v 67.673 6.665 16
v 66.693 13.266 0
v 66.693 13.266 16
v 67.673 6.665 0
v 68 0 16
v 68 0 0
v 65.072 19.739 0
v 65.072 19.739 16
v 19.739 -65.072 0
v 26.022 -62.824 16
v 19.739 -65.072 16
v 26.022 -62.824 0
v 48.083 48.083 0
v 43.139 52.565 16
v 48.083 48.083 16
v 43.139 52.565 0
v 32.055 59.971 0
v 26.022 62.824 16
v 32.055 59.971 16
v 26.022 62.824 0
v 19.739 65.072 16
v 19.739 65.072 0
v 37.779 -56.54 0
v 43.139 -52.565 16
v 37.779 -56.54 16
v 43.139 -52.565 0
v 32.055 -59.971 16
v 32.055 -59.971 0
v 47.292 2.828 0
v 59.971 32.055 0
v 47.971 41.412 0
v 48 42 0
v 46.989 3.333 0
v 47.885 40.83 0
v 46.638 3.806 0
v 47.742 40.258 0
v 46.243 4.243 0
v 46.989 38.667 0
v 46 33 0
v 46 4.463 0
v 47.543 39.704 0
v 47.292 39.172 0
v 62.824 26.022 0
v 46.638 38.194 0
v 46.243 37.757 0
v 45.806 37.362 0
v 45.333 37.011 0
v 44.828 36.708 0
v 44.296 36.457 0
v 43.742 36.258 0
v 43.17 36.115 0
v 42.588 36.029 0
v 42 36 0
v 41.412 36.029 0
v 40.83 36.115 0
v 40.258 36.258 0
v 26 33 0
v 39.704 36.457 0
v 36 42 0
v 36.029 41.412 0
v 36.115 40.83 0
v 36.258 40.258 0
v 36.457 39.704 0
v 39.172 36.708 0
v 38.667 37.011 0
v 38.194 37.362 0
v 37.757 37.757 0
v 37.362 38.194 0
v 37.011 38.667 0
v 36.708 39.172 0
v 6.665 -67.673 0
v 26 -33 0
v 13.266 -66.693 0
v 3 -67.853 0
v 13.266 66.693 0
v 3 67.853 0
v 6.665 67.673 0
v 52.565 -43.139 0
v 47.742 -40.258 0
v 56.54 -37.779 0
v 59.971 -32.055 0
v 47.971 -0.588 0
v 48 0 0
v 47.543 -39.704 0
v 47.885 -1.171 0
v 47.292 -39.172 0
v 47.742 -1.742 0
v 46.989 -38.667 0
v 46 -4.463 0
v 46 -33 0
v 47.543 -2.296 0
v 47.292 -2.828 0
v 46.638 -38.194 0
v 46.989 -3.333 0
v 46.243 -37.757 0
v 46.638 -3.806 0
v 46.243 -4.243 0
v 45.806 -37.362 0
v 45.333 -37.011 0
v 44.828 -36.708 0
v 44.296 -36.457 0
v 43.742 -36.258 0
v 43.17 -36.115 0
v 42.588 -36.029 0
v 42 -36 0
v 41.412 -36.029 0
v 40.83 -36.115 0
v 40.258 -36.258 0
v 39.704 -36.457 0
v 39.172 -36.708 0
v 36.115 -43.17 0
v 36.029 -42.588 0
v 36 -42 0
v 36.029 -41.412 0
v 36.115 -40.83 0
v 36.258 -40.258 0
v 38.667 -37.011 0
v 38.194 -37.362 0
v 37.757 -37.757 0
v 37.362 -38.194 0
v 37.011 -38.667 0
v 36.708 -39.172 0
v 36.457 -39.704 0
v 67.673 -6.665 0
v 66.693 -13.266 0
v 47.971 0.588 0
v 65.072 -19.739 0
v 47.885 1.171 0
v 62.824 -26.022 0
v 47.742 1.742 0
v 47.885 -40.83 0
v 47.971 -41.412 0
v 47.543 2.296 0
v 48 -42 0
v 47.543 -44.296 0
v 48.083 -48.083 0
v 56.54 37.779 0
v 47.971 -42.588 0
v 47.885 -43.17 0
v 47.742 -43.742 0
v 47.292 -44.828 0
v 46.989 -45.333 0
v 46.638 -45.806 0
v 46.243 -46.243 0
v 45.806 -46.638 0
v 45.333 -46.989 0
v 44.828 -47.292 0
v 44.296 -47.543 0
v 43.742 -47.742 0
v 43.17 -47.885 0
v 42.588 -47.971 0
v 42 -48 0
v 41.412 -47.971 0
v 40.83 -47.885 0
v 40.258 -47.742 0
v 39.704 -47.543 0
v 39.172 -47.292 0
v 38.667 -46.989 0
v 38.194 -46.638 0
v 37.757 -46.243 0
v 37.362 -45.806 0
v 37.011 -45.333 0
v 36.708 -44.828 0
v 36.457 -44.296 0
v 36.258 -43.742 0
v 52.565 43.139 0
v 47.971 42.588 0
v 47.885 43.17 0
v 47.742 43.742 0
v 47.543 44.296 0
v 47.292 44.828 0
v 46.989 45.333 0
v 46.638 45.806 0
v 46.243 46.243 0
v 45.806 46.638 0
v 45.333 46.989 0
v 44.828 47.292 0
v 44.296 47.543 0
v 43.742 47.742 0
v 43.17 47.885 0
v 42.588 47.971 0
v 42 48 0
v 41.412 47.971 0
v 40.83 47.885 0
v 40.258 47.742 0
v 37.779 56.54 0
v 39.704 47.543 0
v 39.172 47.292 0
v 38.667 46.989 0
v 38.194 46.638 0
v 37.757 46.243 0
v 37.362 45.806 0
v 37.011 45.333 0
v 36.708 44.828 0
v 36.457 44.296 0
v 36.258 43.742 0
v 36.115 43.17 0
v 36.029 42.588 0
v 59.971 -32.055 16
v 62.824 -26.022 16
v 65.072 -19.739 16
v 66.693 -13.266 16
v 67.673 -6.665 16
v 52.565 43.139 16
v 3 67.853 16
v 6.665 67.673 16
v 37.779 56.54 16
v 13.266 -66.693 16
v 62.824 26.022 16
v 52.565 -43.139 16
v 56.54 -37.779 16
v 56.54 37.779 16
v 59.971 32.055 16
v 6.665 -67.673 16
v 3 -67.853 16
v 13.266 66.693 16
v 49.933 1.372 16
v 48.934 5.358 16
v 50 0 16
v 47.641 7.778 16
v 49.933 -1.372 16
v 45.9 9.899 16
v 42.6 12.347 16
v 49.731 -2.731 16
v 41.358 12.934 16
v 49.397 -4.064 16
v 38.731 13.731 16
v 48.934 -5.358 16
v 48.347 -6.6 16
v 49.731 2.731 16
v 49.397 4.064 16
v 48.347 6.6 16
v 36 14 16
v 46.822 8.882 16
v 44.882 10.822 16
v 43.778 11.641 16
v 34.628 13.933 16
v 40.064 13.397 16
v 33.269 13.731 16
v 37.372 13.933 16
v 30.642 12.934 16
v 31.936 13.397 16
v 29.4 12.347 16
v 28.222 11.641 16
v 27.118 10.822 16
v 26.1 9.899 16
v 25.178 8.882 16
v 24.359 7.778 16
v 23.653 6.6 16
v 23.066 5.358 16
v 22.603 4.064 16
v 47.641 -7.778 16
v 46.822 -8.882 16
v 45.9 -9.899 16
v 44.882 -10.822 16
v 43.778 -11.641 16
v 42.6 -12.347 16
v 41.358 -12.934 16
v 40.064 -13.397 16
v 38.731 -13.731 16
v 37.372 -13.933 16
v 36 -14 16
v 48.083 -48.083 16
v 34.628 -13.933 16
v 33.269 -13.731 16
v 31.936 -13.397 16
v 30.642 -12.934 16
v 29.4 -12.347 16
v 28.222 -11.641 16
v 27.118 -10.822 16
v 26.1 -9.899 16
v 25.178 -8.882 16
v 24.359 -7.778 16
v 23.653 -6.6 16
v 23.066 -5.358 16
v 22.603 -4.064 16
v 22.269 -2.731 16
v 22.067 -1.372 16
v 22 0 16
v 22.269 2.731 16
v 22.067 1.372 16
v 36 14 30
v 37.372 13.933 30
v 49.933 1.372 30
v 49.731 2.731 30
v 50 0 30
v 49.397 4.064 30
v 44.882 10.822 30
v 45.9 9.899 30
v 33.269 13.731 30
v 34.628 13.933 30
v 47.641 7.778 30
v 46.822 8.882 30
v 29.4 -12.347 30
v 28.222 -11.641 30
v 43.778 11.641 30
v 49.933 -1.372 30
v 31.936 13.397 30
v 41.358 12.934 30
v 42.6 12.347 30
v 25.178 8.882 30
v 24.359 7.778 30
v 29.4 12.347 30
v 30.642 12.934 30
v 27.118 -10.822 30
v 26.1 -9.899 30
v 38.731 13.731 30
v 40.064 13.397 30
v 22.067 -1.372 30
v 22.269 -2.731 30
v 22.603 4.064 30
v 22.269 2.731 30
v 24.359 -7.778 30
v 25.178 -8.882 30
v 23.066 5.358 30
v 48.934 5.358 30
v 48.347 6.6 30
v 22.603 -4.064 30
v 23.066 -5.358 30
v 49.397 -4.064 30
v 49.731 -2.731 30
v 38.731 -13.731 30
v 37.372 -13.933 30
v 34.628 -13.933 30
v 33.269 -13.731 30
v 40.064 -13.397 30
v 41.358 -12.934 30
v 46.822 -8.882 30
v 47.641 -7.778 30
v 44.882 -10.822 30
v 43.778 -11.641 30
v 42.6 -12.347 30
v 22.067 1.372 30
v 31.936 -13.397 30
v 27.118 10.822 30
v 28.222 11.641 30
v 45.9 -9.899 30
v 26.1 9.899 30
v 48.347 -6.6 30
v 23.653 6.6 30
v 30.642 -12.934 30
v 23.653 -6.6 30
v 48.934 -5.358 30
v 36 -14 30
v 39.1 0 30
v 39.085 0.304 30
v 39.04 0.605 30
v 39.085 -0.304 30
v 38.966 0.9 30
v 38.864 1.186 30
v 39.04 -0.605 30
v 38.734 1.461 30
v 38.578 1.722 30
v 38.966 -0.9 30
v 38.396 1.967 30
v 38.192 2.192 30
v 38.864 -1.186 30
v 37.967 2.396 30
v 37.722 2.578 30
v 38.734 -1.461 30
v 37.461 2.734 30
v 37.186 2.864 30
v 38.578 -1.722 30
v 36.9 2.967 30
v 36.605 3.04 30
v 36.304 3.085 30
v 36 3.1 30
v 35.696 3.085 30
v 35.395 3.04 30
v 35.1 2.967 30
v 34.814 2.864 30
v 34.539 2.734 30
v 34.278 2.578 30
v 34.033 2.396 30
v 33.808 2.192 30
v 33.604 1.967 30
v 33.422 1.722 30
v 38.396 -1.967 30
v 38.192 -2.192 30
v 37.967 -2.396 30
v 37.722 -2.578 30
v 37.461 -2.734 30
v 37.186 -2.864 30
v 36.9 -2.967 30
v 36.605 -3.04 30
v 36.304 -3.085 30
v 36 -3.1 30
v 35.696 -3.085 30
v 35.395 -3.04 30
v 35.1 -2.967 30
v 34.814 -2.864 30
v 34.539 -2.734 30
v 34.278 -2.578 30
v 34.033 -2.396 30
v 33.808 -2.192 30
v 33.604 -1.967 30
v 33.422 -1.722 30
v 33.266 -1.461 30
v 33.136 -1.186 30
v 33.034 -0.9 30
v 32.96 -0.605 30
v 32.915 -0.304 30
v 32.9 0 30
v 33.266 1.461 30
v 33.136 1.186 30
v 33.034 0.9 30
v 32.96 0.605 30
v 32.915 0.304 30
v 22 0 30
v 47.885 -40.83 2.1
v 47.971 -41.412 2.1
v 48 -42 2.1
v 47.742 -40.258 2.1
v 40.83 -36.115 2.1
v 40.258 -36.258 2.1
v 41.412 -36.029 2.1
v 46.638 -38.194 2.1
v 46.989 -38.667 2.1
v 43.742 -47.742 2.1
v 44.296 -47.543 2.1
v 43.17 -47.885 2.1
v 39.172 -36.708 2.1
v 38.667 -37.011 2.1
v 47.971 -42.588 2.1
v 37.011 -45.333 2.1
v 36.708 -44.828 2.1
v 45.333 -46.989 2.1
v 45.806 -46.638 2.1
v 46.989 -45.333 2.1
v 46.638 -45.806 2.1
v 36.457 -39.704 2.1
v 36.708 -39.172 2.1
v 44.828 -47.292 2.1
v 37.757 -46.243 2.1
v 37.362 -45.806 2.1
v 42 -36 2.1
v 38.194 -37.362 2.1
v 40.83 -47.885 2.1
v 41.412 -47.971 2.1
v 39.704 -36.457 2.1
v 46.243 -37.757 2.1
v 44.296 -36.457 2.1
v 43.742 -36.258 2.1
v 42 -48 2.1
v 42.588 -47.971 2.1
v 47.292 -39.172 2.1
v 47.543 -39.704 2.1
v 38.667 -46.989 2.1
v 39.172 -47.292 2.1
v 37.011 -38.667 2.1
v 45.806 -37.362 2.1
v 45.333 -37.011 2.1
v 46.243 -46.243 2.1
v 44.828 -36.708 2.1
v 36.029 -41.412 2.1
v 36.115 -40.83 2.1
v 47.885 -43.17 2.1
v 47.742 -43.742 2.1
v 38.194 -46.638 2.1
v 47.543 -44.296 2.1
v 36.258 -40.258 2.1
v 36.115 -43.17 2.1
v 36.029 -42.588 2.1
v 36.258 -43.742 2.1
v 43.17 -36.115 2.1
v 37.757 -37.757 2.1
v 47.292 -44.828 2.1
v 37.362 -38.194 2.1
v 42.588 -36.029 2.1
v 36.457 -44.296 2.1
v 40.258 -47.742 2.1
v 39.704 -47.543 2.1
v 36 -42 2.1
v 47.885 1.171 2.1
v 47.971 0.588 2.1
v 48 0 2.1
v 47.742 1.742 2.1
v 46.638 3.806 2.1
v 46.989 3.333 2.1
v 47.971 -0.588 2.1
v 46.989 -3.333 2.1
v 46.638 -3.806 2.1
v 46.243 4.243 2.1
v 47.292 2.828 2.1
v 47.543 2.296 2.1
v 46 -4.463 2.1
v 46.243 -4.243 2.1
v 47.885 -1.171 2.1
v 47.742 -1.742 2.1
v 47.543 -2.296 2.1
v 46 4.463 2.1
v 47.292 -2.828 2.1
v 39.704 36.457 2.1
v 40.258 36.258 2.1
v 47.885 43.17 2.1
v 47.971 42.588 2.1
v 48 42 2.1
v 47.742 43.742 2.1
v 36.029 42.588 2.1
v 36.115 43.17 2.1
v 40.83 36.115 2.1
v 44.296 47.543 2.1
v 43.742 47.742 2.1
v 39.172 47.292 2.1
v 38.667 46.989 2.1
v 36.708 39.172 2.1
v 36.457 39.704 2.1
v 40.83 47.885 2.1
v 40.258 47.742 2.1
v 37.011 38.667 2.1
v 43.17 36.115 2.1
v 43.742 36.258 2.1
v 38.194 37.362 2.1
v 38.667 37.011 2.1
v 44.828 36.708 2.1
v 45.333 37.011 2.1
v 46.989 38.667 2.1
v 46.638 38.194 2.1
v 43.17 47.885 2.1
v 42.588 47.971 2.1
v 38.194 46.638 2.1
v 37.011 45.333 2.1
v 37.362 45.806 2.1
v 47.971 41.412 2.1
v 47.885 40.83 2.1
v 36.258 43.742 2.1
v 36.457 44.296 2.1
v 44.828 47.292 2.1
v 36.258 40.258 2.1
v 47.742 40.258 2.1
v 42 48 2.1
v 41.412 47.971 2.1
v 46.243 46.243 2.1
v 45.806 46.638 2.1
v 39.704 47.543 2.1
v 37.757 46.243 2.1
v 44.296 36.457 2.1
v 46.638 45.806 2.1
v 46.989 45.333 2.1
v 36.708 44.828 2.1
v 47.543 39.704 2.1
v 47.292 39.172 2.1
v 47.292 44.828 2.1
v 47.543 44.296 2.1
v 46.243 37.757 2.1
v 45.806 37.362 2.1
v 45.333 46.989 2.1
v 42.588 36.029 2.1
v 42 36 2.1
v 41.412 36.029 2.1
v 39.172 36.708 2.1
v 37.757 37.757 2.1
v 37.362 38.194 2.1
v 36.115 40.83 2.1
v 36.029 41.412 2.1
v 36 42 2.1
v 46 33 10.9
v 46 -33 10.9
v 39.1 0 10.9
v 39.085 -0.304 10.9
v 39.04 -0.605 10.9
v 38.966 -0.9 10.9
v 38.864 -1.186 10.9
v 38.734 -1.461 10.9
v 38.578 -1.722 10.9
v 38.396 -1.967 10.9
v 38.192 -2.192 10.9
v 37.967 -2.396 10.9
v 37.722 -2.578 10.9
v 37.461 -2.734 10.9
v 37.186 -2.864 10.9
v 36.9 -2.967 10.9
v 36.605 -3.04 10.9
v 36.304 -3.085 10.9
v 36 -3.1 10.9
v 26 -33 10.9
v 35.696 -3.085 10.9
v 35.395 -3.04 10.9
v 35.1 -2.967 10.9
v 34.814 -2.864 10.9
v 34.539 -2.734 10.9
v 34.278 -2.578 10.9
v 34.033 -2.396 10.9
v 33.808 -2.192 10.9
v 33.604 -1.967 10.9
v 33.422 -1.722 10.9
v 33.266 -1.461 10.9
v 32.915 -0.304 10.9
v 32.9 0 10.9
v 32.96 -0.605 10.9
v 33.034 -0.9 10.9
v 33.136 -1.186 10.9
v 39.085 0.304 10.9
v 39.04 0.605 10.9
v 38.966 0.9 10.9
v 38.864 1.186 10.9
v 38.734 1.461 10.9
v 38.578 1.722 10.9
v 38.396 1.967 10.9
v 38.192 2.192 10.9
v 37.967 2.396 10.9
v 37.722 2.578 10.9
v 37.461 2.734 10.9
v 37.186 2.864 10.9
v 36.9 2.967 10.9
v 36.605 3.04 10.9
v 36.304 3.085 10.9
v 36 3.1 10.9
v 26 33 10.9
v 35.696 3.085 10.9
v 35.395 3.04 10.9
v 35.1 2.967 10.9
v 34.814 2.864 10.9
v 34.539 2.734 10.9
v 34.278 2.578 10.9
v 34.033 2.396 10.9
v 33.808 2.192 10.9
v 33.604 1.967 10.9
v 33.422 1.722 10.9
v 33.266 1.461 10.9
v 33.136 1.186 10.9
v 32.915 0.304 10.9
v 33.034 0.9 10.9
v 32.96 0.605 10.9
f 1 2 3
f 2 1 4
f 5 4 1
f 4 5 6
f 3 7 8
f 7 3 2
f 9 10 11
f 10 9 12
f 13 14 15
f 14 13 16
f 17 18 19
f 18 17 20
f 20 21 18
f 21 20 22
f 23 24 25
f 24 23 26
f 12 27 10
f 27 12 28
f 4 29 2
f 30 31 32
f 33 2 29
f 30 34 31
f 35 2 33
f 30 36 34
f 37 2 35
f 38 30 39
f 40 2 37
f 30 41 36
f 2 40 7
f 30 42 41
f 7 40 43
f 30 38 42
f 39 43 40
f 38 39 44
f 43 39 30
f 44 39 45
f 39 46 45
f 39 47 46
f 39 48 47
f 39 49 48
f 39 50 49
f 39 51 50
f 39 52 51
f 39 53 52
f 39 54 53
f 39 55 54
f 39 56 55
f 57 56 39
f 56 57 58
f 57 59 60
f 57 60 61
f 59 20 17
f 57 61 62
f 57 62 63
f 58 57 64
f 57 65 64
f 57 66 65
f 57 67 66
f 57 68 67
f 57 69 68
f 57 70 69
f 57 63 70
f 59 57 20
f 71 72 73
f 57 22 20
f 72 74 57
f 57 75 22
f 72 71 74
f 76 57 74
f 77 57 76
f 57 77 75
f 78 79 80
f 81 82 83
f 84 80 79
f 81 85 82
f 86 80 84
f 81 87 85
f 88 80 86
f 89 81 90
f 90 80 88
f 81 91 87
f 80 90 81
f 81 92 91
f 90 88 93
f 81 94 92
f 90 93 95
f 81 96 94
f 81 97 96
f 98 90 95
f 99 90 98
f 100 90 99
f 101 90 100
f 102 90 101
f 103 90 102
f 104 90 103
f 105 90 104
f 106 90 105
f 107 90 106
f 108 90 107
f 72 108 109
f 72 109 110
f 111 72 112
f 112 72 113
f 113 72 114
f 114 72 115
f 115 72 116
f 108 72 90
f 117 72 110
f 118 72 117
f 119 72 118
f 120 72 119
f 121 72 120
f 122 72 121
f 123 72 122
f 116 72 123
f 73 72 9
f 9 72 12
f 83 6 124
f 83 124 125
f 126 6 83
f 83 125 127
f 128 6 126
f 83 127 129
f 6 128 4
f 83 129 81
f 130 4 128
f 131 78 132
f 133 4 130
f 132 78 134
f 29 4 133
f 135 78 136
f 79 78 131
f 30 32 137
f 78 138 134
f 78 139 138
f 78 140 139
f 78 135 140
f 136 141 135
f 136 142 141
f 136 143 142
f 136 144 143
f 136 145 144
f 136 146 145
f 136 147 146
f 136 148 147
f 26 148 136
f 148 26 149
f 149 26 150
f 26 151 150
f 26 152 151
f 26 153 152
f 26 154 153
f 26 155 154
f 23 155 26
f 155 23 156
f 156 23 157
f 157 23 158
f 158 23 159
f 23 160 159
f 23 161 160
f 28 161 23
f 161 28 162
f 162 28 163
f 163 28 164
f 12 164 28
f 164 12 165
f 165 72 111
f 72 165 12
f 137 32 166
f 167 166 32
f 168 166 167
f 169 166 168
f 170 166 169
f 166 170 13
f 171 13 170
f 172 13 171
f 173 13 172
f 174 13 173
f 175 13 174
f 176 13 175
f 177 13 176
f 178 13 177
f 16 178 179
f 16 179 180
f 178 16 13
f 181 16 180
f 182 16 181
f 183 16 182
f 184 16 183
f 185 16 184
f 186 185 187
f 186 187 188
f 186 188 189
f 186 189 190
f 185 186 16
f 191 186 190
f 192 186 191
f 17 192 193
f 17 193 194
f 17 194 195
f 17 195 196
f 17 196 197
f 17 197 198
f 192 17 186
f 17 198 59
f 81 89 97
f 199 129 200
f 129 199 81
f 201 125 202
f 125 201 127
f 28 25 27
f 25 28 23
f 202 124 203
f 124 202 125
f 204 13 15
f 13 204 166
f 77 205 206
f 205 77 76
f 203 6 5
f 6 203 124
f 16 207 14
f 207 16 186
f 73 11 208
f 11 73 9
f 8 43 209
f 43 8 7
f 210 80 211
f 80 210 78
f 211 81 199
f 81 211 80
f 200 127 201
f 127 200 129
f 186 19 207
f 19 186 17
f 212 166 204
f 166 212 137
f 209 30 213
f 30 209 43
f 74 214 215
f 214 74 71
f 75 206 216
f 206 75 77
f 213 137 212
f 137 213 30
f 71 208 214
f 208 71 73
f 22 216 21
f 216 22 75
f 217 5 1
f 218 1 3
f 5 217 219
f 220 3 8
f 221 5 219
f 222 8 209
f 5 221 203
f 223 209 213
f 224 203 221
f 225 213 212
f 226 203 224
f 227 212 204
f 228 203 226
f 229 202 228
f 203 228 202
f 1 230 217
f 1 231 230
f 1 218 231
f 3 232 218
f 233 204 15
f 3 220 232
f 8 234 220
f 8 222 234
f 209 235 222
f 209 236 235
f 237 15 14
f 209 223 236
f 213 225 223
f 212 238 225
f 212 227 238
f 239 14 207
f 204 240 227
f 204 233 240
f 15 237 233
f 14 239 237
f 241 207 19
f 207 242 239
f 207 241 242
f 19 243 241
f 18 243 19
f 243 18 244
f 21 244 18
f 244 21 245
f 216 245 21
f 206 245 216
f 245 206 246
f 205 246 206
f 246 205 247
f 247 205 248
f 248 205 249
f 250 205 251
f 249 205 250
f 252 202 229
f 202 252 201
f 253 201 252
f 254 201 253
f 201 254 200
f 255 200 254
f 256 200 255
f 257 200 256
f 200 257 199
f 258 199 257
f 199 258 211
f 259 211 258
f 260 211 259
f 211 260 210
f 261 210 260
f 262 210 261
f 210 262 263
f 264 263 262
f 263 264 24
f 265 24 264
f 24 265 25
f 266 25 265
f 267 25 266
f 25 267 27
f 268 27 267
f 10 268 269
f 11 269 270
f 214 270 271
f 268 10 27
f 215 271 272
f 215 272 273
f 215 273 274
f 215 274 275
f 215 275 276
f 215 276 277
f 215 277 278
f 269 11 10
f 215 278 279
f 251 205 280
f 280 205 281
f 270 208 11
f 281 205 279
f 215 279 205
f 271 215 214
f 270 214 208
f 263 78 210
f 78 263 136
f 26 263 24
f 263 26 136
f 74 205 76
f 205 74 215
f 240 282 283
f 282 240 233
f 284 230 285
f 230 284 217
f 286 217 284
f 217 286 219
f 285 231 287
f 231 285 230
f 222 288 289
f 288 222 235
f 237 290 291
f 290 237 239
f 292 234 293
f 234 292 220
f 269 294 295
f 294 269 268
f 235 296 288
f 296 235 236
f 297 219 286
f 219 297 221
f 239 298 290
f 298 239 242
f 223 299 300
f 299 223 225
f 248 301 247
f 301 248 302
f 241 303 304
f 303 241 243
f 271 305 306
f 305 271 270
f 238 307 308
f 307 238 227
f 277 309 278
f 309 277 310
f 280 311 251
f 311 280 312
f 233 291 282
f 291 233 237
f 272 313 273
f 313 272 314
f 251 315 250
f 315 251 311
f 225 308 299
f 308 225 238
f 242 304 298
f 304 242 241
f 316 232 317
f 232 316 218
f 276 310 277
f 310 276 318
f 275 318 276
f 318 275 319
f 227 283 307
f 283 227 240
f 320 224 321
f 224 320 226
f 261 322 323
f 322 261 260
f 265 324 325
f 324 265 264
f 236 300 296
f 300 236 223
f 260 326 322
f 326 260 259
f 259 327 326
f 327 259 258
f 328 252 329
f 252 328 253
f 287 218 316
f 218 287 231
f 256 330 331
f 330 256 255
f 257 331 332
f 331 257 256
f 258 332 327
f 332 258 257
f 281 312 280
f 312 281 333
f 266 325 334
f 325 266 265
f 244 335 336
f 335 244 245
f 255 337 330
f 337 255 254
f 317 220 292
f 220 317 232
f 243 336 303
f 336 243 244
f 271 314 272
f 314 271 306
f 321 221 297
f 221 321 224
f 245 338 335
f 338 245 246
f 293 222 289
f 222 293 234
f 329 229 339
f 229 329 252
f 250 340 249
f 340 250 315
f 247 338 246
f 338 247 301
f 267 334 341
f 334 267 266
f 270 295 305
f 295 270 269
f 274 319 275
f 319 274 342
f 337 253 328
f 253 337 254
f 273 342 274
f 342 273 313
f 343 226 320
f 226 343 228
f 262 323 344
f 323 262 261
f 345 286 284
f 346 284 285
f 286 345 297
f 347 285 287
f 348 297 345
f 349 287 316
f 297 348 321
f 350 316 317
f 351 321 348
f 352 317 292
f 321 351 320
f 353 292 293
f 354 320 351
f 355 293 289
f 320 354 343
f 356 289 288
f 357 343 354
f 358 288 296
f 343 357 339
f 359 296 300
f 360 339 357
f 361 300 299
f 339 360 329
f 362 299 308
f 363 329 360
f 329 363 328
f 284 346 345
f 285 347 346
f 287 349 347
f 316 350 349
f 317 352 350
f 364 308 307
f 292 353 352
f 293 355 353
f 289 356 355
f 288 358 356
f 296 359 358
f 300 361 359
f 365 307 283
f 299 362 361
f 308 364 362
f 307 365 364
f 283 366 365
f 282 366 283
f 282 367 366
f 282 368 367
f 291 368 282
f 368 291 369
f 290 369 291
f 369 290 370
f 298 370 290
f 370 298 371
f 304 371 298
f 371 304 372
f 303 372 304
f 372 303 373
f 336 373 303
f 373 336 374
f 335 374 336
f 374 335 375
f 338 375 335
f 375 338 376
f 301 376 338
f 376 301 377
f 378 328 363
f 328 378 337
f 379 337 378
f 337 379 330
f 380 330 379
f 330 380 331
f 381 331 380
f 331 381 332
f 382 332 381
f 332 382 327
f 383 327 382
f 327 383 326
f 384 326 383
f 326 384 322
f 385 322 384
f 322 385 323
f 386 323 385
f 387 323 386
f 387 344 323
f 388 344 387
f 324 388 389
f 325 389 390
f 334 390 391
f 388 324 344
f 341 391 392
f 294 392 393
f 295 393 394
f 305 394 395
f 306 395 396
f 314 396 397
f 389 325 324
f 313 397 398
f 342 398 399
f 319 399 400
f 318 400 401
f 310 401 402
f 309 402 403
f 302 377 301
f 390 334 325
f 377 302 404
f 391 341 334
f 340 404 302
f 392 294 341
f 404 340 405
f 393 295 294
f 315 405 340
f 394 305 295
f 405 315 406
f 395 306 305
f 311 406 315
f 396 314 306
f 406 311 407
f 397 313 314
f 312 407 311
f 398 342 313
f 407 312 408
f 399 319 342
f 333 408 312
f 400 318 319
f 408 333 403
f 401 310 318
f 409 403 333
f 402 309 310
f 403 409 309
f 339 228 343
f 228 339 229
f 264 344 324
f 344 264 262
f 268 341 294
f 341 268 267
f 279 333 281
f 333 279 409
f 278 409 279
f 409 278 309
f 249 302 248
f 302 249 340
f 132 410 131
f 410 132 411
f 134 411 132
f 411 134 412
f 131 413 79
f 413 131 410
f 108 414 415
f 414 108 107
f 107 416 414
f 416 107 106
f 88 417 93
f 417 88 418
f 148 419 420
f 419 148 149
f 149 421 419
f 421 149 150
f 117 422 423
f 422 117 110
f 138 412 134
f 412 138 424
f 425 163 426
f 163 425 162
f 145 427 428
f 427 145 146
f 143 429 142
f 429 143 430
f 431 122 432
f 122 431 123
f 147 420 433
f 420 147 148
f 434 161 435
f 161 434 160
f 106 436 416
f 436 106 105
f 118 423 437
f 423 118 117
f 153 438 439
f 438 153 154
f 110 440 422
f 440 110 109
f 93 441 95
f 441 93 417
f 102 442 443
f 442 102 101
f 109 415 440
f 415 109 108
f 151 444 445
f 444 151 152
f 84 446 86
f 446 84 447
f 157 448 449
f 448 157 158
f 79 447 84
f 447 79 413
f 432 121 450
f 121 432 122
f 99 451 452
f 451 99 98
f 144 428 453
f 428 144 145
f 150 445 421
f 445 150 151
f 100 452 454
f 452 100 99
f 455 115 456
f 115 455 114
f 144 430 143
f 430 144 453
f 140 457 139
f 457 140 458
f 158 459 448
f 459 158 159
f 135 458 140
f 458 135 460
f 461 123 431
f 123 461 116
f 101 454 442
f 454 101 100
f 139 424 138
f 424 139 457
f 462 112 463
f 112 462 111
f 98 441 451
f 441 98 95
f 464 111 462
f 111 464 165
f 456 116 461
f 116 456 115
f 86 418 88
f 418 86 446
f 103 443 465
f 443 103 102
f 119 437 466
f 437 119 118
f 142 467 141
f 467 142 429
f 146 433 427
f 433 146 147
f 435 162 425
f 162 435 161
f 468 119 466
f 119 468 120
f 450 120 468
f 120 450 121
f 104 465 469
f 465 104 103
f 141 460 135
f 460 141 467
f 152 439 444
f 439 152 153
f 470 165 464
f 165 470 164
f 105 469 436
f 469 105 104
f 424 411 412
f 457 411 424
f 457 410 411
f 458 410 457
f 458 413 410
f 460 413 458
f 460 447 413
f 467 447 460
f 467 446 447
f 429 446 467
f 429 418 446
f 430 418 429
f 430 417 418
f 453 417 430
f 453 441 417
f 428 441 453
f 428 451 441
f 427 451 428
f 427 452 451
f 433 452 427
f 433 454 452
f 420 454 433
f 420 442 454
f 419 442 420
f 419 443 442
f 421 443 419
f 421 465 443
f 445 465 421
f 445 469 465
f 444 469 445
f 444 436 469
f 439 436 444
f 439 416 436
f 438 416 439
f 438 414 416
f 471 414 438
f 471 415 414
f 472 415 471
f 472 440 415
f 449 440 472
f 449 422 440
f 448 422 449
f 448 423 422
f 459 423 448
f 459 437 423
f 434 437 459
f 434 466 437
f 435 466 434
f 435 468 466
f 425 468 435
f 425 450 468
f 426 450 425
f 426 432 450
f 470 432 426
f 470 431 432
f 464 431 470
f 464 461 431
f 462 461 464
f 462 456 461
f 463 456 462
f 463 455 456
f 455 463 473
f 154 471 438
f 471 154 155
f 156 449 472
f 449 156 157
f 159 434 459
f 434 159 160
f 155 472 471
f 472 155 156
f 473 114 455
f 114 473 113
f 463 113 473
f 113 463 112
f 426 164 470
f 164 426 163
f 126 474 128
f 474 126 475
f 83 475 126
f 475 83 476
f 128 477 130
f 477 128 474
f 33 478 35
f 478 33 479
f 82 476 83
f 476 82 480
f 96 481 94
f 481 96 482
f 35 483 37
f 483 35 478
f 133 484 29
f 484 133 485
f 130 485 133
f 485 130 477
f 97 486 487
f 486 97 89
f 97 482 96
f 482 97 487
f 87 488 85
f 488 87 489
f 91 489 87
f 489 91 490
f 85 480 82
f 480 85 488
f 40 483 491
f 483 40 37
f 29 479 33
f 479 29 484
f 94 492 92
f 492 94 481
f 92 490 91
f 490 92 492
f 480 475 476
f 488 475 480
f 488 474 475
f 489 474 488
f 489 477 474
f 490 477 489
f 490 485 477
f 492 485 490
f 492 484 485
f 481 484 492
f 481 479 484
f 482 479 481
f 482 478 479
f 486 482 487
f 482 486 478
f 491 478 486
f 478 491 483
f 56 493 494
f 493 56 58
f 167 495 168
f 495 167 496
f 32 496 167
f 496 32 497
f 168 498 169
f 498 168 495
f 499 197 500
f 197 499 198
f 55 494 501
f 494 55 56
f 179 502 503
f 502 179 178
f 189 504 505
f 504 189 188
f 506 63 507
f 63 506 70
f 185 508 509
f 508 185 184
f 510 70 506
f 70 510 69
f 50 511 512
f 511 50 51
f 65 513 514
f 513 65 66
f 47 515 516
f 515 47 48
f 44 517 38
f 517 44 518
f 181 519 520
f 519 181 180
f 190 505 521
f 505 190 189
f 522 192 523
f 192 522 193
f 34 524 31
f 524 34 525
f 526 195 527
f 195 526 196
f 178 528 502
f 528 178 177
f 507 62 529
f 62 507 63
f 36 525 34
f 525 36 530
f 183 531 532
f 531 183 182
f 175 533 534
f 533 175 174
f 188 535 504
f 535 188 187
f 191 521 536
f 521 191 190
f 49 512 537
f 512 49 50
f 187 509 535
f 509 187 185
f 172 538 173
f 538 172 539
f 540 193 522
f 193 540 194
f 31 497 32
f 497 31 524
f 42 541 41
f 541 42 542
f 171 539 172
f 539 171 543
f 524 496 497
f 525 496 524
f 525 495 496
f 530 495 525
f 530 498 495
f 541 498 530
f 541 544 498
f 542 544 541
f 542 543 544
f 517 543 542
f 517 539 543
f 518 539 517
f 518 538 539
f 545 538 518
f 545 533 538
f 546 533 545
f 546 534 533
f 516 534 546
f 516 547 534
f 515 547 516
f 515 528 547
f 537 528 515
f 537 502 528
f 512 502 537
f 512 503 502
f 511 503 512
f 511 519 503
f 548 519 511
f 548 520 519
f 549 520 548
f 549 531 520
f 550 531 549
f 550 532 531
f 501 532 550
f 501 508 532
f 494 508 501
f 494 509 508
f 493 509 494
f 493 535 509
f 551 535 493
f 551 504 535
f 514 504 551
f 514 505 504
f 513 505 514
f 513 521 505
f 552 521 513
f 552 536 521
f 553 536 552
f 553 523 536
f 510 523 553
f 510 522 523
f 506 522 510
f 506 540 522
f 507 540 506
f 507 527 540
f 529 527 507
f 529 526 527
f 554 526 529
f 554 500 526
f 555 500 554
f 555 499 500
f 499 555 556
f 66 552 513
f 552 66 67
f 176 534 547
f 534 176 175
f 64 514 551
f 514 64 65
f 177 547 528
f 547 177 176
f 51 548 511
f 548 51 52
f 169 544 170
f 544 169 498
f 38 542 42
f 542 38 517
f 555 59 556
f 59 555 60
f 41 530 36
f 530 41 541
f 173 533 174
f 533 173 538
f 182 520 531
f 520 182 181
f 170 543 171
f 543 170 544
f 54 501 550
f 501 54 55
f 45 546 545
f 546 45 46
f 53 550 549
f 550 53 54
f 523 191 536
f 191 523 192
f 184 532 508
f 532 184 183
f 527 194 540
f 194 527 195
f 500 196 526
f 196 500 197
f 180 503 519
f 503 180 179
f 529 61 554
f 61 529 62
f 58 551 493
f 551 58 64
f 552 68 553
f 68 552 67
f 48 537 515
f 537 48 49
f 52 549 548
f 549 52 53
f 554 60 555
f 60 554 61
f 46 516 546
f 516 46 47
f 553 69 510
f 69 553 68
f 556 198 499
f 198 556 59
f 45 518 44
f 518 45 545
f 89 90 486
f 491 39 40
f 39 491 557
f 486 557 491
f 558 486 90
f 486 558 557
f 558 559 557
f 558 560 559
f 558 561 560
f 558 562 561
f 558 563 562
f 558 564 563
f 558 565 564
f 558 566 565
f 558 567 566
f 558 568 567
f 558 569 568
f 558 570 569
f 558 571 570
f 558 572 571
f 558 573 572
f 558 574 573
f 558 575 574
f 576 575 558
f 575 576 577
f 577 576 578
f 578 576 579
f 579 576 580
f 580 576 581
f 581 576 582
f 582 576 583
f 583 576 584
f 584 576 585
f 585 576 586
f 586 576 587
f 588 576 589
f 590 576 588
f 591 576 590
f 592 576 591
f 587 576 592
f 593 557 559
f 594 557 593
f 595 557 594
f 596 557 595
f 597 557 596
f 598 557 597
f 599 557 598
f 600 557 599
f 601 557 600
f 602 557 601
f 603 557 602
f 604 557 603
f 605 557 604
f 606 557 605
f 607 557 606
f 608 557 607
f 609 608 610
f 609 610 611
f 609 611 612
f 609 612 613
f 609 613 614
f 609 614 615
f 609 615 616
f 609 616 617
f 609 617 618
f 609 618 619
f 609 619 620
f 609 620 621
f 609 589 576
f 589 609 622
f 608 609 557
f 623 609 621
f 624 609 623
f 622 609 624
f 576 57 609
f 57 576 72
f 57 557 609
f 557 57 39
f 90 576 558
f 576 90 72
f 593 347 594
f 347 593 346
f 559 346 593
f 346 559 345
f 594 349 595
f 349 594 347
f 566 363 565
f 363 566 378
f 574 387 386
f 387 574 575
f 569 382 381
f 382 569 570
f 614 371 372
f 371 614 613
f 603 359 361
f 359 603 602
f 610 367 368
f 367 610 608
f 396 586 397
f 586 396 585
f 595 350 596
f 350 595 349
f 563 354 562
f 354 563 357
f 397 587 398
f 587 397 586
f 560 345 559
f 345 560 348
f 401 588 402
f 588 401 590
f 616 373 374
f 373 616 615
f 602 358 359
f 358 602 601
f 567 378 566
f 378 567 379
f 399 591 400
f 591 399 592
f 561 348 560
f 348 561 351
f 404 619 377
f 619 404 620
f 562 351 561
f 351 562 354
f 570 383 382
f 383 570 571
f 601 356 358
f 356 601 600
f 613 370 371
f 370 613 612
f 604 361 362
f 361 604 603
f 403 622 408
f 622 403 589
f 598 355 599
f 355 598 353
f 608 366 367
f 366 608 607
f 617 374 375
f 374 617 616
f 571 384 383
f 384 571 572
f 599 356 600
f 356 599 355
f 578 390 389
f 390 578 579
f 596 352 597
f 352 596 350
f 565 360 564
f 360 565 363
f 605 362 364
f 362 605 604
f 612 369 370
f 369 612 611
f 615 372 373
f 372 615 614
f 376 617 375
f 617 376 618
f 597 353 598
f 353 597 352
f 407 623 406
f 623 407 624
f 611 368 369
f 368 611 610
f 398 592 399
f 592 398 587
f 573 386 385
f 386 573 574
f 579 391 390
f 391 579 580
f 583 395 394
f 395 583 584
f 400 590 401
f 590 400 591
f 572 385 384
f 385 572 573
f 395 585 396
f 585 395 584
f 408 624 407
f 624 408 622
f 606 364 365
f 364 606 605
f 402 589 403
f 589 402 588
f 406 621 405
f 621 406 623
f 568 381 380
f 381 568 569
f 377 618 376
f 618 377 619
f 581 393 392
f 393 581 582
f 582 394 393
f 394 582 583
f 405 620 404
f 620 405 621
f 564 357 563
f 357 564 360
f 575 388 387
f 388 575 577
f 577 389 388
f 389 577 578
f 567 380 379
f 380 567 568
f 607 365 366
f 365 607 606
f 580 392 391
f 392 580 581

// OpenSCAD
// Jimmy Part 01b: Right Split D-Shaped Half-Platform Foot (18650 Bay + Ankle Socket)
$fn = 64;

module right_foot_half_platform() {
    difference() {
        union() {
            // Right half-cylinder sole (X > +3 mm, radius 68 mm, height 16 mm)
            intersection() {
                cylinder(h = 16, r = 68);
                translate([3, -75, 0]) cube([72, 150, 20]);
            }
            // Ankle STS3215 clevis boss
            translate([36, 0, 16]) cylinder(h = 14, r = 14);
        }
        // Bottom 18650 single-cell battery pocket (19x66 mm)
        translate([26, -33, -0.1]) cube([20, 66, 11]);
        // M3 ankle servo horn bore + wire routing channel
        translate([36, 0, -0.1]) cylinder(h = 32, d = 6.2);
        // 3x bottom silicone pad recesses
        for (y = [-42, 0, 42])
            translate([42, y, -0.1]) cylinder(h = 2.2, d = 12);
    }
}

right_foot_half_platform();
